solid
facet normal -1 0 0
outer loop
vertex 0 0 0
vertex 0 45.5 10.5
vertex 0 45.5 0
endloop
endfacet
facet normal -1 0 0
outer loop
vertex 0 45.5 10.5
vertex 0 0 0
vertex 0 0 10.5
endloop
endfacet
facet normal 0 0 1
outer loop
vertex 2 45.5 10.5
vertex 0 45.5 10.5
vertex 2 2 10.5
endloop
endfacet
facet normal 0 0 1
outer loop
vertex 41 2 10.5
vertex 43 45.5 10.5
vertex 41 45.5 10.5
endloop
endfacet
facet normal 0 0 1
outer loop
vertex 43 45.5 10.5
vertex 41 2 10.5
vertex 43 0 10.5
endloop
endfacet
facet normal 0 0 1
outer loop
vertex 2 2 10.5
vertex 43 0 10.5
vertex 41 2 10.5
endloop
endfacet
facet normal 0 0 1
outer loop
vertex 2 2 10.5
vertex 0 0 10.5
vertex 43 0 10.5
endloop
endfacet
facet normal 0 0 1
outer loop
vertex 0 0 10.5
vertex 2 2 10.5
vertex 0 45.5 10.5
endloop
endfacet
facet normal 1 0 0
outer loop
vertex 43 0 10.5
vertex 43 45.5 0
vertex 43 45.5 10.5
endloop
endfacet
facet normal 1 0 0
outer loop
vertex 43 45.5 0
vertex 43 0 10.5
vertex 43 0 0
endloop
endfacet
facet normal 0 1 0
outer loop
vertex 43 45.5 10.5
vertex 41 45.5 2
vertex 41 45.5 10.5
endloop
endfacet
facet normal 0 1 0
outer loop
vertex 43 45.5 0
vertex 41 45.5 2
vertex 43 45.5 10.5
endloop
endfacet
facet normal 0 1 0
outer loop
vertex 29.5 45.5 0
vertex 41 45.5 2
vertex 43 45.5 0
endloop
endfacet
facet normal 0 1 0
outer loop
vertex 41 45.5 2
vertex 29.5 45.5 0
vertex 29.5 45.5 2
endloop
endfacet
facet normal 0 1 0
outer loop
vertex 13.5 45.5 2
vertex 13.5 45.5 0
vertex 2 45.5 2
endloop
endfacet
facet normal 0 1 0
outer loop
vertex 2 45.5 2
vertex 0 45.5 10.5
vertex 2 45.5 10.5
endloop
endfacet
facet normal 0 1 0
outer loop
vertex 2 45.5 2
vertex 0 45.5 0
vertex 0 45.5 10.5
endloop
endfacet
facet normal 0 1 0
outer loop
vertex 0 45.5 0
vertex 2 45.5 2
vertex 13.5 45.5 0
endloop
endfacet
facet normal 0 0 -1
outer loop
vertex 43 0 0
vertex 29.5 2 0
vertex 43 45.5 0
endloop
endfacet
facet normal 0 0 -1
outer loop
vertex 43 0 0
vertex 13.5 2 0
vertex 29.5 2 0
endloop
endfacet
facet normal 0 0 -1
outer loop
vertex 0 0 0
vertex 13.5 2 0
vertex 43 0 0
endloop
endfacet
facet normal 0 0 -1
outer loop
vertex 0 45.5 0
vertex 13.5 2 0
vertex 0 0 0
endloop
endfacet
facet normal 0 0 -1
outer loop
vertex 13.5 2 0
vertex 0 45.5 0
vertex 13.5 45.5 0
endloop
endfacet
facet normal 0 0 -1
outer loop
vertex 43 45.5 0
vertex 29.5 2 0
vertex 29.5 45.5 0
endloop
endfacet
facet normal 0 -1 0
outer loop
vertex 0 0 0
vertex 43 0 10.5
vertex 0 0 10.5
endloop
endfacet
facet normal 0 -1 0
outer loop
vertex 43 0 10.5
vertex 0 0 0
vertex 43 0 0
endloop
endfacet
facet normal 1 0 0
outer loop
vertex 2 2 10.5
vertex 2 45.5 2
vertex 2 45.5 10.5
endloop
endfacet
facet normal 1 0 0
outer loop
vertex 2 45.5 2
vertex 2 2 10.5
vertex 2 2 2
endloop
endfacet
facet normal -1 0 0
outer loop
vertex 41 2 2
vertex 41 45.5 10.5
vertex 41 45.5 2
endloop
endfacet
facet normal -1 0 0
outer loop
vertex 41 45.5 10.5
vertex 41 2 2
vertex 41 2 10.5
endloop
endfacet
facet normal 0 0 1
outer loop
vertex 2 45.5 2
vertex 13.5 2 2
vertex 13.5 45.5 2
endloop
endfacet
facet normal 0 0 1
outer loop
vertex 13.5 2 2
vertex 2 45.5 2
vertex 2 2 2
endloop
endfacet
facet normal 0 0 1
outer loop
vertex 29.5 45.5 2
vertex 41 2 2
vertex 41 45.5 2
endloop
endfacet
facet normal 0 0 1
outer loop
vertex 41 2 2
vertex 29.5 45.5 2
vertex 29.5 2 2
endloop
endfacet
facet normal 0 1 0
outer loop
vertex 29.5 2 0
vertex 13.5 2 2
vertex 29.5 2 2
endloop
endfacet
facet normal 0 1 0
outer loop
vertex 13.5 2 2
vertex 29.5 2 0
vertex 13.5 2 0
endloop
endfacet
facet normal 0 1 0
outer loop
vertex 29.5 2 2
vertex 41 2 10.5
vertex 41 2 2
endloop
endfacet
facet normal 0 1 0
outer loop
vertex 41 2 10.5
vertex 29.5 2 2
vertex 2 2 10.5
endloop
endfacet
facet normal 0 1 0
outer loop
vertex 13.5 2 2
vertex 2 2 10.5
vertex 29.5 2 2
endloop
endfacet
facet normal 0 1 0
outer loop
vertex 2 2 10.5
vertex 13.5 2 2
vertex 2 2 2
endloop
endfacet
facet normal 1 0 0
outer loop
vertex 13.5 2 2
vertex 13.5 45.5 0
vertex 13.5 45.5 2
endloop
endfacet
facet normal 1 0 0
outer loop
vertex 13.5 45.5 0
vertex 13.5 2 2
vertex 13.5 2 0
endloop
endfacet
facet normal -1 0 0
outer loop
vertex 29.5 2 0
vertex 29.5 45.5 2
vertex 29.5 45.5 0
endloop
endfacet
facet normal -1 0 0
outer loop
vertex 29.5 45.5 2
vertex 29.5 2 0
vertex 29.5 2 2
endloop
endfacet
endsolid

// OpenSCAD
// AirBox Arduino Nano v3 inner holder
// All numbers are supposed to be millimeters.

inner_size = 43;
holder_wall = 2;
holder_height = 43.5;
holder_depth = 8.5;
holder_gap = 16;

difference() {
    cube([inner_size, holder_height + holder_wall, holder_depth + holder_wall], center=false);
    translate([holder_wall, holder_wall, holder_wall]) {
        cube([inner_size - holder_wall*2, holder_height + holder_wall, holder_depth + holder_wall], center=false);
    }
    translate([(inner_size - holder_gap)/2, holder_wall, - holder_wall]) {
        cube(size=[holder_gap, holder_height + holder_wall, holder_wall*4], center=false);
    }
}

echo(version=version());

// Written by Alexey Kondratov <kondratov.aleksey@gmail.com>
